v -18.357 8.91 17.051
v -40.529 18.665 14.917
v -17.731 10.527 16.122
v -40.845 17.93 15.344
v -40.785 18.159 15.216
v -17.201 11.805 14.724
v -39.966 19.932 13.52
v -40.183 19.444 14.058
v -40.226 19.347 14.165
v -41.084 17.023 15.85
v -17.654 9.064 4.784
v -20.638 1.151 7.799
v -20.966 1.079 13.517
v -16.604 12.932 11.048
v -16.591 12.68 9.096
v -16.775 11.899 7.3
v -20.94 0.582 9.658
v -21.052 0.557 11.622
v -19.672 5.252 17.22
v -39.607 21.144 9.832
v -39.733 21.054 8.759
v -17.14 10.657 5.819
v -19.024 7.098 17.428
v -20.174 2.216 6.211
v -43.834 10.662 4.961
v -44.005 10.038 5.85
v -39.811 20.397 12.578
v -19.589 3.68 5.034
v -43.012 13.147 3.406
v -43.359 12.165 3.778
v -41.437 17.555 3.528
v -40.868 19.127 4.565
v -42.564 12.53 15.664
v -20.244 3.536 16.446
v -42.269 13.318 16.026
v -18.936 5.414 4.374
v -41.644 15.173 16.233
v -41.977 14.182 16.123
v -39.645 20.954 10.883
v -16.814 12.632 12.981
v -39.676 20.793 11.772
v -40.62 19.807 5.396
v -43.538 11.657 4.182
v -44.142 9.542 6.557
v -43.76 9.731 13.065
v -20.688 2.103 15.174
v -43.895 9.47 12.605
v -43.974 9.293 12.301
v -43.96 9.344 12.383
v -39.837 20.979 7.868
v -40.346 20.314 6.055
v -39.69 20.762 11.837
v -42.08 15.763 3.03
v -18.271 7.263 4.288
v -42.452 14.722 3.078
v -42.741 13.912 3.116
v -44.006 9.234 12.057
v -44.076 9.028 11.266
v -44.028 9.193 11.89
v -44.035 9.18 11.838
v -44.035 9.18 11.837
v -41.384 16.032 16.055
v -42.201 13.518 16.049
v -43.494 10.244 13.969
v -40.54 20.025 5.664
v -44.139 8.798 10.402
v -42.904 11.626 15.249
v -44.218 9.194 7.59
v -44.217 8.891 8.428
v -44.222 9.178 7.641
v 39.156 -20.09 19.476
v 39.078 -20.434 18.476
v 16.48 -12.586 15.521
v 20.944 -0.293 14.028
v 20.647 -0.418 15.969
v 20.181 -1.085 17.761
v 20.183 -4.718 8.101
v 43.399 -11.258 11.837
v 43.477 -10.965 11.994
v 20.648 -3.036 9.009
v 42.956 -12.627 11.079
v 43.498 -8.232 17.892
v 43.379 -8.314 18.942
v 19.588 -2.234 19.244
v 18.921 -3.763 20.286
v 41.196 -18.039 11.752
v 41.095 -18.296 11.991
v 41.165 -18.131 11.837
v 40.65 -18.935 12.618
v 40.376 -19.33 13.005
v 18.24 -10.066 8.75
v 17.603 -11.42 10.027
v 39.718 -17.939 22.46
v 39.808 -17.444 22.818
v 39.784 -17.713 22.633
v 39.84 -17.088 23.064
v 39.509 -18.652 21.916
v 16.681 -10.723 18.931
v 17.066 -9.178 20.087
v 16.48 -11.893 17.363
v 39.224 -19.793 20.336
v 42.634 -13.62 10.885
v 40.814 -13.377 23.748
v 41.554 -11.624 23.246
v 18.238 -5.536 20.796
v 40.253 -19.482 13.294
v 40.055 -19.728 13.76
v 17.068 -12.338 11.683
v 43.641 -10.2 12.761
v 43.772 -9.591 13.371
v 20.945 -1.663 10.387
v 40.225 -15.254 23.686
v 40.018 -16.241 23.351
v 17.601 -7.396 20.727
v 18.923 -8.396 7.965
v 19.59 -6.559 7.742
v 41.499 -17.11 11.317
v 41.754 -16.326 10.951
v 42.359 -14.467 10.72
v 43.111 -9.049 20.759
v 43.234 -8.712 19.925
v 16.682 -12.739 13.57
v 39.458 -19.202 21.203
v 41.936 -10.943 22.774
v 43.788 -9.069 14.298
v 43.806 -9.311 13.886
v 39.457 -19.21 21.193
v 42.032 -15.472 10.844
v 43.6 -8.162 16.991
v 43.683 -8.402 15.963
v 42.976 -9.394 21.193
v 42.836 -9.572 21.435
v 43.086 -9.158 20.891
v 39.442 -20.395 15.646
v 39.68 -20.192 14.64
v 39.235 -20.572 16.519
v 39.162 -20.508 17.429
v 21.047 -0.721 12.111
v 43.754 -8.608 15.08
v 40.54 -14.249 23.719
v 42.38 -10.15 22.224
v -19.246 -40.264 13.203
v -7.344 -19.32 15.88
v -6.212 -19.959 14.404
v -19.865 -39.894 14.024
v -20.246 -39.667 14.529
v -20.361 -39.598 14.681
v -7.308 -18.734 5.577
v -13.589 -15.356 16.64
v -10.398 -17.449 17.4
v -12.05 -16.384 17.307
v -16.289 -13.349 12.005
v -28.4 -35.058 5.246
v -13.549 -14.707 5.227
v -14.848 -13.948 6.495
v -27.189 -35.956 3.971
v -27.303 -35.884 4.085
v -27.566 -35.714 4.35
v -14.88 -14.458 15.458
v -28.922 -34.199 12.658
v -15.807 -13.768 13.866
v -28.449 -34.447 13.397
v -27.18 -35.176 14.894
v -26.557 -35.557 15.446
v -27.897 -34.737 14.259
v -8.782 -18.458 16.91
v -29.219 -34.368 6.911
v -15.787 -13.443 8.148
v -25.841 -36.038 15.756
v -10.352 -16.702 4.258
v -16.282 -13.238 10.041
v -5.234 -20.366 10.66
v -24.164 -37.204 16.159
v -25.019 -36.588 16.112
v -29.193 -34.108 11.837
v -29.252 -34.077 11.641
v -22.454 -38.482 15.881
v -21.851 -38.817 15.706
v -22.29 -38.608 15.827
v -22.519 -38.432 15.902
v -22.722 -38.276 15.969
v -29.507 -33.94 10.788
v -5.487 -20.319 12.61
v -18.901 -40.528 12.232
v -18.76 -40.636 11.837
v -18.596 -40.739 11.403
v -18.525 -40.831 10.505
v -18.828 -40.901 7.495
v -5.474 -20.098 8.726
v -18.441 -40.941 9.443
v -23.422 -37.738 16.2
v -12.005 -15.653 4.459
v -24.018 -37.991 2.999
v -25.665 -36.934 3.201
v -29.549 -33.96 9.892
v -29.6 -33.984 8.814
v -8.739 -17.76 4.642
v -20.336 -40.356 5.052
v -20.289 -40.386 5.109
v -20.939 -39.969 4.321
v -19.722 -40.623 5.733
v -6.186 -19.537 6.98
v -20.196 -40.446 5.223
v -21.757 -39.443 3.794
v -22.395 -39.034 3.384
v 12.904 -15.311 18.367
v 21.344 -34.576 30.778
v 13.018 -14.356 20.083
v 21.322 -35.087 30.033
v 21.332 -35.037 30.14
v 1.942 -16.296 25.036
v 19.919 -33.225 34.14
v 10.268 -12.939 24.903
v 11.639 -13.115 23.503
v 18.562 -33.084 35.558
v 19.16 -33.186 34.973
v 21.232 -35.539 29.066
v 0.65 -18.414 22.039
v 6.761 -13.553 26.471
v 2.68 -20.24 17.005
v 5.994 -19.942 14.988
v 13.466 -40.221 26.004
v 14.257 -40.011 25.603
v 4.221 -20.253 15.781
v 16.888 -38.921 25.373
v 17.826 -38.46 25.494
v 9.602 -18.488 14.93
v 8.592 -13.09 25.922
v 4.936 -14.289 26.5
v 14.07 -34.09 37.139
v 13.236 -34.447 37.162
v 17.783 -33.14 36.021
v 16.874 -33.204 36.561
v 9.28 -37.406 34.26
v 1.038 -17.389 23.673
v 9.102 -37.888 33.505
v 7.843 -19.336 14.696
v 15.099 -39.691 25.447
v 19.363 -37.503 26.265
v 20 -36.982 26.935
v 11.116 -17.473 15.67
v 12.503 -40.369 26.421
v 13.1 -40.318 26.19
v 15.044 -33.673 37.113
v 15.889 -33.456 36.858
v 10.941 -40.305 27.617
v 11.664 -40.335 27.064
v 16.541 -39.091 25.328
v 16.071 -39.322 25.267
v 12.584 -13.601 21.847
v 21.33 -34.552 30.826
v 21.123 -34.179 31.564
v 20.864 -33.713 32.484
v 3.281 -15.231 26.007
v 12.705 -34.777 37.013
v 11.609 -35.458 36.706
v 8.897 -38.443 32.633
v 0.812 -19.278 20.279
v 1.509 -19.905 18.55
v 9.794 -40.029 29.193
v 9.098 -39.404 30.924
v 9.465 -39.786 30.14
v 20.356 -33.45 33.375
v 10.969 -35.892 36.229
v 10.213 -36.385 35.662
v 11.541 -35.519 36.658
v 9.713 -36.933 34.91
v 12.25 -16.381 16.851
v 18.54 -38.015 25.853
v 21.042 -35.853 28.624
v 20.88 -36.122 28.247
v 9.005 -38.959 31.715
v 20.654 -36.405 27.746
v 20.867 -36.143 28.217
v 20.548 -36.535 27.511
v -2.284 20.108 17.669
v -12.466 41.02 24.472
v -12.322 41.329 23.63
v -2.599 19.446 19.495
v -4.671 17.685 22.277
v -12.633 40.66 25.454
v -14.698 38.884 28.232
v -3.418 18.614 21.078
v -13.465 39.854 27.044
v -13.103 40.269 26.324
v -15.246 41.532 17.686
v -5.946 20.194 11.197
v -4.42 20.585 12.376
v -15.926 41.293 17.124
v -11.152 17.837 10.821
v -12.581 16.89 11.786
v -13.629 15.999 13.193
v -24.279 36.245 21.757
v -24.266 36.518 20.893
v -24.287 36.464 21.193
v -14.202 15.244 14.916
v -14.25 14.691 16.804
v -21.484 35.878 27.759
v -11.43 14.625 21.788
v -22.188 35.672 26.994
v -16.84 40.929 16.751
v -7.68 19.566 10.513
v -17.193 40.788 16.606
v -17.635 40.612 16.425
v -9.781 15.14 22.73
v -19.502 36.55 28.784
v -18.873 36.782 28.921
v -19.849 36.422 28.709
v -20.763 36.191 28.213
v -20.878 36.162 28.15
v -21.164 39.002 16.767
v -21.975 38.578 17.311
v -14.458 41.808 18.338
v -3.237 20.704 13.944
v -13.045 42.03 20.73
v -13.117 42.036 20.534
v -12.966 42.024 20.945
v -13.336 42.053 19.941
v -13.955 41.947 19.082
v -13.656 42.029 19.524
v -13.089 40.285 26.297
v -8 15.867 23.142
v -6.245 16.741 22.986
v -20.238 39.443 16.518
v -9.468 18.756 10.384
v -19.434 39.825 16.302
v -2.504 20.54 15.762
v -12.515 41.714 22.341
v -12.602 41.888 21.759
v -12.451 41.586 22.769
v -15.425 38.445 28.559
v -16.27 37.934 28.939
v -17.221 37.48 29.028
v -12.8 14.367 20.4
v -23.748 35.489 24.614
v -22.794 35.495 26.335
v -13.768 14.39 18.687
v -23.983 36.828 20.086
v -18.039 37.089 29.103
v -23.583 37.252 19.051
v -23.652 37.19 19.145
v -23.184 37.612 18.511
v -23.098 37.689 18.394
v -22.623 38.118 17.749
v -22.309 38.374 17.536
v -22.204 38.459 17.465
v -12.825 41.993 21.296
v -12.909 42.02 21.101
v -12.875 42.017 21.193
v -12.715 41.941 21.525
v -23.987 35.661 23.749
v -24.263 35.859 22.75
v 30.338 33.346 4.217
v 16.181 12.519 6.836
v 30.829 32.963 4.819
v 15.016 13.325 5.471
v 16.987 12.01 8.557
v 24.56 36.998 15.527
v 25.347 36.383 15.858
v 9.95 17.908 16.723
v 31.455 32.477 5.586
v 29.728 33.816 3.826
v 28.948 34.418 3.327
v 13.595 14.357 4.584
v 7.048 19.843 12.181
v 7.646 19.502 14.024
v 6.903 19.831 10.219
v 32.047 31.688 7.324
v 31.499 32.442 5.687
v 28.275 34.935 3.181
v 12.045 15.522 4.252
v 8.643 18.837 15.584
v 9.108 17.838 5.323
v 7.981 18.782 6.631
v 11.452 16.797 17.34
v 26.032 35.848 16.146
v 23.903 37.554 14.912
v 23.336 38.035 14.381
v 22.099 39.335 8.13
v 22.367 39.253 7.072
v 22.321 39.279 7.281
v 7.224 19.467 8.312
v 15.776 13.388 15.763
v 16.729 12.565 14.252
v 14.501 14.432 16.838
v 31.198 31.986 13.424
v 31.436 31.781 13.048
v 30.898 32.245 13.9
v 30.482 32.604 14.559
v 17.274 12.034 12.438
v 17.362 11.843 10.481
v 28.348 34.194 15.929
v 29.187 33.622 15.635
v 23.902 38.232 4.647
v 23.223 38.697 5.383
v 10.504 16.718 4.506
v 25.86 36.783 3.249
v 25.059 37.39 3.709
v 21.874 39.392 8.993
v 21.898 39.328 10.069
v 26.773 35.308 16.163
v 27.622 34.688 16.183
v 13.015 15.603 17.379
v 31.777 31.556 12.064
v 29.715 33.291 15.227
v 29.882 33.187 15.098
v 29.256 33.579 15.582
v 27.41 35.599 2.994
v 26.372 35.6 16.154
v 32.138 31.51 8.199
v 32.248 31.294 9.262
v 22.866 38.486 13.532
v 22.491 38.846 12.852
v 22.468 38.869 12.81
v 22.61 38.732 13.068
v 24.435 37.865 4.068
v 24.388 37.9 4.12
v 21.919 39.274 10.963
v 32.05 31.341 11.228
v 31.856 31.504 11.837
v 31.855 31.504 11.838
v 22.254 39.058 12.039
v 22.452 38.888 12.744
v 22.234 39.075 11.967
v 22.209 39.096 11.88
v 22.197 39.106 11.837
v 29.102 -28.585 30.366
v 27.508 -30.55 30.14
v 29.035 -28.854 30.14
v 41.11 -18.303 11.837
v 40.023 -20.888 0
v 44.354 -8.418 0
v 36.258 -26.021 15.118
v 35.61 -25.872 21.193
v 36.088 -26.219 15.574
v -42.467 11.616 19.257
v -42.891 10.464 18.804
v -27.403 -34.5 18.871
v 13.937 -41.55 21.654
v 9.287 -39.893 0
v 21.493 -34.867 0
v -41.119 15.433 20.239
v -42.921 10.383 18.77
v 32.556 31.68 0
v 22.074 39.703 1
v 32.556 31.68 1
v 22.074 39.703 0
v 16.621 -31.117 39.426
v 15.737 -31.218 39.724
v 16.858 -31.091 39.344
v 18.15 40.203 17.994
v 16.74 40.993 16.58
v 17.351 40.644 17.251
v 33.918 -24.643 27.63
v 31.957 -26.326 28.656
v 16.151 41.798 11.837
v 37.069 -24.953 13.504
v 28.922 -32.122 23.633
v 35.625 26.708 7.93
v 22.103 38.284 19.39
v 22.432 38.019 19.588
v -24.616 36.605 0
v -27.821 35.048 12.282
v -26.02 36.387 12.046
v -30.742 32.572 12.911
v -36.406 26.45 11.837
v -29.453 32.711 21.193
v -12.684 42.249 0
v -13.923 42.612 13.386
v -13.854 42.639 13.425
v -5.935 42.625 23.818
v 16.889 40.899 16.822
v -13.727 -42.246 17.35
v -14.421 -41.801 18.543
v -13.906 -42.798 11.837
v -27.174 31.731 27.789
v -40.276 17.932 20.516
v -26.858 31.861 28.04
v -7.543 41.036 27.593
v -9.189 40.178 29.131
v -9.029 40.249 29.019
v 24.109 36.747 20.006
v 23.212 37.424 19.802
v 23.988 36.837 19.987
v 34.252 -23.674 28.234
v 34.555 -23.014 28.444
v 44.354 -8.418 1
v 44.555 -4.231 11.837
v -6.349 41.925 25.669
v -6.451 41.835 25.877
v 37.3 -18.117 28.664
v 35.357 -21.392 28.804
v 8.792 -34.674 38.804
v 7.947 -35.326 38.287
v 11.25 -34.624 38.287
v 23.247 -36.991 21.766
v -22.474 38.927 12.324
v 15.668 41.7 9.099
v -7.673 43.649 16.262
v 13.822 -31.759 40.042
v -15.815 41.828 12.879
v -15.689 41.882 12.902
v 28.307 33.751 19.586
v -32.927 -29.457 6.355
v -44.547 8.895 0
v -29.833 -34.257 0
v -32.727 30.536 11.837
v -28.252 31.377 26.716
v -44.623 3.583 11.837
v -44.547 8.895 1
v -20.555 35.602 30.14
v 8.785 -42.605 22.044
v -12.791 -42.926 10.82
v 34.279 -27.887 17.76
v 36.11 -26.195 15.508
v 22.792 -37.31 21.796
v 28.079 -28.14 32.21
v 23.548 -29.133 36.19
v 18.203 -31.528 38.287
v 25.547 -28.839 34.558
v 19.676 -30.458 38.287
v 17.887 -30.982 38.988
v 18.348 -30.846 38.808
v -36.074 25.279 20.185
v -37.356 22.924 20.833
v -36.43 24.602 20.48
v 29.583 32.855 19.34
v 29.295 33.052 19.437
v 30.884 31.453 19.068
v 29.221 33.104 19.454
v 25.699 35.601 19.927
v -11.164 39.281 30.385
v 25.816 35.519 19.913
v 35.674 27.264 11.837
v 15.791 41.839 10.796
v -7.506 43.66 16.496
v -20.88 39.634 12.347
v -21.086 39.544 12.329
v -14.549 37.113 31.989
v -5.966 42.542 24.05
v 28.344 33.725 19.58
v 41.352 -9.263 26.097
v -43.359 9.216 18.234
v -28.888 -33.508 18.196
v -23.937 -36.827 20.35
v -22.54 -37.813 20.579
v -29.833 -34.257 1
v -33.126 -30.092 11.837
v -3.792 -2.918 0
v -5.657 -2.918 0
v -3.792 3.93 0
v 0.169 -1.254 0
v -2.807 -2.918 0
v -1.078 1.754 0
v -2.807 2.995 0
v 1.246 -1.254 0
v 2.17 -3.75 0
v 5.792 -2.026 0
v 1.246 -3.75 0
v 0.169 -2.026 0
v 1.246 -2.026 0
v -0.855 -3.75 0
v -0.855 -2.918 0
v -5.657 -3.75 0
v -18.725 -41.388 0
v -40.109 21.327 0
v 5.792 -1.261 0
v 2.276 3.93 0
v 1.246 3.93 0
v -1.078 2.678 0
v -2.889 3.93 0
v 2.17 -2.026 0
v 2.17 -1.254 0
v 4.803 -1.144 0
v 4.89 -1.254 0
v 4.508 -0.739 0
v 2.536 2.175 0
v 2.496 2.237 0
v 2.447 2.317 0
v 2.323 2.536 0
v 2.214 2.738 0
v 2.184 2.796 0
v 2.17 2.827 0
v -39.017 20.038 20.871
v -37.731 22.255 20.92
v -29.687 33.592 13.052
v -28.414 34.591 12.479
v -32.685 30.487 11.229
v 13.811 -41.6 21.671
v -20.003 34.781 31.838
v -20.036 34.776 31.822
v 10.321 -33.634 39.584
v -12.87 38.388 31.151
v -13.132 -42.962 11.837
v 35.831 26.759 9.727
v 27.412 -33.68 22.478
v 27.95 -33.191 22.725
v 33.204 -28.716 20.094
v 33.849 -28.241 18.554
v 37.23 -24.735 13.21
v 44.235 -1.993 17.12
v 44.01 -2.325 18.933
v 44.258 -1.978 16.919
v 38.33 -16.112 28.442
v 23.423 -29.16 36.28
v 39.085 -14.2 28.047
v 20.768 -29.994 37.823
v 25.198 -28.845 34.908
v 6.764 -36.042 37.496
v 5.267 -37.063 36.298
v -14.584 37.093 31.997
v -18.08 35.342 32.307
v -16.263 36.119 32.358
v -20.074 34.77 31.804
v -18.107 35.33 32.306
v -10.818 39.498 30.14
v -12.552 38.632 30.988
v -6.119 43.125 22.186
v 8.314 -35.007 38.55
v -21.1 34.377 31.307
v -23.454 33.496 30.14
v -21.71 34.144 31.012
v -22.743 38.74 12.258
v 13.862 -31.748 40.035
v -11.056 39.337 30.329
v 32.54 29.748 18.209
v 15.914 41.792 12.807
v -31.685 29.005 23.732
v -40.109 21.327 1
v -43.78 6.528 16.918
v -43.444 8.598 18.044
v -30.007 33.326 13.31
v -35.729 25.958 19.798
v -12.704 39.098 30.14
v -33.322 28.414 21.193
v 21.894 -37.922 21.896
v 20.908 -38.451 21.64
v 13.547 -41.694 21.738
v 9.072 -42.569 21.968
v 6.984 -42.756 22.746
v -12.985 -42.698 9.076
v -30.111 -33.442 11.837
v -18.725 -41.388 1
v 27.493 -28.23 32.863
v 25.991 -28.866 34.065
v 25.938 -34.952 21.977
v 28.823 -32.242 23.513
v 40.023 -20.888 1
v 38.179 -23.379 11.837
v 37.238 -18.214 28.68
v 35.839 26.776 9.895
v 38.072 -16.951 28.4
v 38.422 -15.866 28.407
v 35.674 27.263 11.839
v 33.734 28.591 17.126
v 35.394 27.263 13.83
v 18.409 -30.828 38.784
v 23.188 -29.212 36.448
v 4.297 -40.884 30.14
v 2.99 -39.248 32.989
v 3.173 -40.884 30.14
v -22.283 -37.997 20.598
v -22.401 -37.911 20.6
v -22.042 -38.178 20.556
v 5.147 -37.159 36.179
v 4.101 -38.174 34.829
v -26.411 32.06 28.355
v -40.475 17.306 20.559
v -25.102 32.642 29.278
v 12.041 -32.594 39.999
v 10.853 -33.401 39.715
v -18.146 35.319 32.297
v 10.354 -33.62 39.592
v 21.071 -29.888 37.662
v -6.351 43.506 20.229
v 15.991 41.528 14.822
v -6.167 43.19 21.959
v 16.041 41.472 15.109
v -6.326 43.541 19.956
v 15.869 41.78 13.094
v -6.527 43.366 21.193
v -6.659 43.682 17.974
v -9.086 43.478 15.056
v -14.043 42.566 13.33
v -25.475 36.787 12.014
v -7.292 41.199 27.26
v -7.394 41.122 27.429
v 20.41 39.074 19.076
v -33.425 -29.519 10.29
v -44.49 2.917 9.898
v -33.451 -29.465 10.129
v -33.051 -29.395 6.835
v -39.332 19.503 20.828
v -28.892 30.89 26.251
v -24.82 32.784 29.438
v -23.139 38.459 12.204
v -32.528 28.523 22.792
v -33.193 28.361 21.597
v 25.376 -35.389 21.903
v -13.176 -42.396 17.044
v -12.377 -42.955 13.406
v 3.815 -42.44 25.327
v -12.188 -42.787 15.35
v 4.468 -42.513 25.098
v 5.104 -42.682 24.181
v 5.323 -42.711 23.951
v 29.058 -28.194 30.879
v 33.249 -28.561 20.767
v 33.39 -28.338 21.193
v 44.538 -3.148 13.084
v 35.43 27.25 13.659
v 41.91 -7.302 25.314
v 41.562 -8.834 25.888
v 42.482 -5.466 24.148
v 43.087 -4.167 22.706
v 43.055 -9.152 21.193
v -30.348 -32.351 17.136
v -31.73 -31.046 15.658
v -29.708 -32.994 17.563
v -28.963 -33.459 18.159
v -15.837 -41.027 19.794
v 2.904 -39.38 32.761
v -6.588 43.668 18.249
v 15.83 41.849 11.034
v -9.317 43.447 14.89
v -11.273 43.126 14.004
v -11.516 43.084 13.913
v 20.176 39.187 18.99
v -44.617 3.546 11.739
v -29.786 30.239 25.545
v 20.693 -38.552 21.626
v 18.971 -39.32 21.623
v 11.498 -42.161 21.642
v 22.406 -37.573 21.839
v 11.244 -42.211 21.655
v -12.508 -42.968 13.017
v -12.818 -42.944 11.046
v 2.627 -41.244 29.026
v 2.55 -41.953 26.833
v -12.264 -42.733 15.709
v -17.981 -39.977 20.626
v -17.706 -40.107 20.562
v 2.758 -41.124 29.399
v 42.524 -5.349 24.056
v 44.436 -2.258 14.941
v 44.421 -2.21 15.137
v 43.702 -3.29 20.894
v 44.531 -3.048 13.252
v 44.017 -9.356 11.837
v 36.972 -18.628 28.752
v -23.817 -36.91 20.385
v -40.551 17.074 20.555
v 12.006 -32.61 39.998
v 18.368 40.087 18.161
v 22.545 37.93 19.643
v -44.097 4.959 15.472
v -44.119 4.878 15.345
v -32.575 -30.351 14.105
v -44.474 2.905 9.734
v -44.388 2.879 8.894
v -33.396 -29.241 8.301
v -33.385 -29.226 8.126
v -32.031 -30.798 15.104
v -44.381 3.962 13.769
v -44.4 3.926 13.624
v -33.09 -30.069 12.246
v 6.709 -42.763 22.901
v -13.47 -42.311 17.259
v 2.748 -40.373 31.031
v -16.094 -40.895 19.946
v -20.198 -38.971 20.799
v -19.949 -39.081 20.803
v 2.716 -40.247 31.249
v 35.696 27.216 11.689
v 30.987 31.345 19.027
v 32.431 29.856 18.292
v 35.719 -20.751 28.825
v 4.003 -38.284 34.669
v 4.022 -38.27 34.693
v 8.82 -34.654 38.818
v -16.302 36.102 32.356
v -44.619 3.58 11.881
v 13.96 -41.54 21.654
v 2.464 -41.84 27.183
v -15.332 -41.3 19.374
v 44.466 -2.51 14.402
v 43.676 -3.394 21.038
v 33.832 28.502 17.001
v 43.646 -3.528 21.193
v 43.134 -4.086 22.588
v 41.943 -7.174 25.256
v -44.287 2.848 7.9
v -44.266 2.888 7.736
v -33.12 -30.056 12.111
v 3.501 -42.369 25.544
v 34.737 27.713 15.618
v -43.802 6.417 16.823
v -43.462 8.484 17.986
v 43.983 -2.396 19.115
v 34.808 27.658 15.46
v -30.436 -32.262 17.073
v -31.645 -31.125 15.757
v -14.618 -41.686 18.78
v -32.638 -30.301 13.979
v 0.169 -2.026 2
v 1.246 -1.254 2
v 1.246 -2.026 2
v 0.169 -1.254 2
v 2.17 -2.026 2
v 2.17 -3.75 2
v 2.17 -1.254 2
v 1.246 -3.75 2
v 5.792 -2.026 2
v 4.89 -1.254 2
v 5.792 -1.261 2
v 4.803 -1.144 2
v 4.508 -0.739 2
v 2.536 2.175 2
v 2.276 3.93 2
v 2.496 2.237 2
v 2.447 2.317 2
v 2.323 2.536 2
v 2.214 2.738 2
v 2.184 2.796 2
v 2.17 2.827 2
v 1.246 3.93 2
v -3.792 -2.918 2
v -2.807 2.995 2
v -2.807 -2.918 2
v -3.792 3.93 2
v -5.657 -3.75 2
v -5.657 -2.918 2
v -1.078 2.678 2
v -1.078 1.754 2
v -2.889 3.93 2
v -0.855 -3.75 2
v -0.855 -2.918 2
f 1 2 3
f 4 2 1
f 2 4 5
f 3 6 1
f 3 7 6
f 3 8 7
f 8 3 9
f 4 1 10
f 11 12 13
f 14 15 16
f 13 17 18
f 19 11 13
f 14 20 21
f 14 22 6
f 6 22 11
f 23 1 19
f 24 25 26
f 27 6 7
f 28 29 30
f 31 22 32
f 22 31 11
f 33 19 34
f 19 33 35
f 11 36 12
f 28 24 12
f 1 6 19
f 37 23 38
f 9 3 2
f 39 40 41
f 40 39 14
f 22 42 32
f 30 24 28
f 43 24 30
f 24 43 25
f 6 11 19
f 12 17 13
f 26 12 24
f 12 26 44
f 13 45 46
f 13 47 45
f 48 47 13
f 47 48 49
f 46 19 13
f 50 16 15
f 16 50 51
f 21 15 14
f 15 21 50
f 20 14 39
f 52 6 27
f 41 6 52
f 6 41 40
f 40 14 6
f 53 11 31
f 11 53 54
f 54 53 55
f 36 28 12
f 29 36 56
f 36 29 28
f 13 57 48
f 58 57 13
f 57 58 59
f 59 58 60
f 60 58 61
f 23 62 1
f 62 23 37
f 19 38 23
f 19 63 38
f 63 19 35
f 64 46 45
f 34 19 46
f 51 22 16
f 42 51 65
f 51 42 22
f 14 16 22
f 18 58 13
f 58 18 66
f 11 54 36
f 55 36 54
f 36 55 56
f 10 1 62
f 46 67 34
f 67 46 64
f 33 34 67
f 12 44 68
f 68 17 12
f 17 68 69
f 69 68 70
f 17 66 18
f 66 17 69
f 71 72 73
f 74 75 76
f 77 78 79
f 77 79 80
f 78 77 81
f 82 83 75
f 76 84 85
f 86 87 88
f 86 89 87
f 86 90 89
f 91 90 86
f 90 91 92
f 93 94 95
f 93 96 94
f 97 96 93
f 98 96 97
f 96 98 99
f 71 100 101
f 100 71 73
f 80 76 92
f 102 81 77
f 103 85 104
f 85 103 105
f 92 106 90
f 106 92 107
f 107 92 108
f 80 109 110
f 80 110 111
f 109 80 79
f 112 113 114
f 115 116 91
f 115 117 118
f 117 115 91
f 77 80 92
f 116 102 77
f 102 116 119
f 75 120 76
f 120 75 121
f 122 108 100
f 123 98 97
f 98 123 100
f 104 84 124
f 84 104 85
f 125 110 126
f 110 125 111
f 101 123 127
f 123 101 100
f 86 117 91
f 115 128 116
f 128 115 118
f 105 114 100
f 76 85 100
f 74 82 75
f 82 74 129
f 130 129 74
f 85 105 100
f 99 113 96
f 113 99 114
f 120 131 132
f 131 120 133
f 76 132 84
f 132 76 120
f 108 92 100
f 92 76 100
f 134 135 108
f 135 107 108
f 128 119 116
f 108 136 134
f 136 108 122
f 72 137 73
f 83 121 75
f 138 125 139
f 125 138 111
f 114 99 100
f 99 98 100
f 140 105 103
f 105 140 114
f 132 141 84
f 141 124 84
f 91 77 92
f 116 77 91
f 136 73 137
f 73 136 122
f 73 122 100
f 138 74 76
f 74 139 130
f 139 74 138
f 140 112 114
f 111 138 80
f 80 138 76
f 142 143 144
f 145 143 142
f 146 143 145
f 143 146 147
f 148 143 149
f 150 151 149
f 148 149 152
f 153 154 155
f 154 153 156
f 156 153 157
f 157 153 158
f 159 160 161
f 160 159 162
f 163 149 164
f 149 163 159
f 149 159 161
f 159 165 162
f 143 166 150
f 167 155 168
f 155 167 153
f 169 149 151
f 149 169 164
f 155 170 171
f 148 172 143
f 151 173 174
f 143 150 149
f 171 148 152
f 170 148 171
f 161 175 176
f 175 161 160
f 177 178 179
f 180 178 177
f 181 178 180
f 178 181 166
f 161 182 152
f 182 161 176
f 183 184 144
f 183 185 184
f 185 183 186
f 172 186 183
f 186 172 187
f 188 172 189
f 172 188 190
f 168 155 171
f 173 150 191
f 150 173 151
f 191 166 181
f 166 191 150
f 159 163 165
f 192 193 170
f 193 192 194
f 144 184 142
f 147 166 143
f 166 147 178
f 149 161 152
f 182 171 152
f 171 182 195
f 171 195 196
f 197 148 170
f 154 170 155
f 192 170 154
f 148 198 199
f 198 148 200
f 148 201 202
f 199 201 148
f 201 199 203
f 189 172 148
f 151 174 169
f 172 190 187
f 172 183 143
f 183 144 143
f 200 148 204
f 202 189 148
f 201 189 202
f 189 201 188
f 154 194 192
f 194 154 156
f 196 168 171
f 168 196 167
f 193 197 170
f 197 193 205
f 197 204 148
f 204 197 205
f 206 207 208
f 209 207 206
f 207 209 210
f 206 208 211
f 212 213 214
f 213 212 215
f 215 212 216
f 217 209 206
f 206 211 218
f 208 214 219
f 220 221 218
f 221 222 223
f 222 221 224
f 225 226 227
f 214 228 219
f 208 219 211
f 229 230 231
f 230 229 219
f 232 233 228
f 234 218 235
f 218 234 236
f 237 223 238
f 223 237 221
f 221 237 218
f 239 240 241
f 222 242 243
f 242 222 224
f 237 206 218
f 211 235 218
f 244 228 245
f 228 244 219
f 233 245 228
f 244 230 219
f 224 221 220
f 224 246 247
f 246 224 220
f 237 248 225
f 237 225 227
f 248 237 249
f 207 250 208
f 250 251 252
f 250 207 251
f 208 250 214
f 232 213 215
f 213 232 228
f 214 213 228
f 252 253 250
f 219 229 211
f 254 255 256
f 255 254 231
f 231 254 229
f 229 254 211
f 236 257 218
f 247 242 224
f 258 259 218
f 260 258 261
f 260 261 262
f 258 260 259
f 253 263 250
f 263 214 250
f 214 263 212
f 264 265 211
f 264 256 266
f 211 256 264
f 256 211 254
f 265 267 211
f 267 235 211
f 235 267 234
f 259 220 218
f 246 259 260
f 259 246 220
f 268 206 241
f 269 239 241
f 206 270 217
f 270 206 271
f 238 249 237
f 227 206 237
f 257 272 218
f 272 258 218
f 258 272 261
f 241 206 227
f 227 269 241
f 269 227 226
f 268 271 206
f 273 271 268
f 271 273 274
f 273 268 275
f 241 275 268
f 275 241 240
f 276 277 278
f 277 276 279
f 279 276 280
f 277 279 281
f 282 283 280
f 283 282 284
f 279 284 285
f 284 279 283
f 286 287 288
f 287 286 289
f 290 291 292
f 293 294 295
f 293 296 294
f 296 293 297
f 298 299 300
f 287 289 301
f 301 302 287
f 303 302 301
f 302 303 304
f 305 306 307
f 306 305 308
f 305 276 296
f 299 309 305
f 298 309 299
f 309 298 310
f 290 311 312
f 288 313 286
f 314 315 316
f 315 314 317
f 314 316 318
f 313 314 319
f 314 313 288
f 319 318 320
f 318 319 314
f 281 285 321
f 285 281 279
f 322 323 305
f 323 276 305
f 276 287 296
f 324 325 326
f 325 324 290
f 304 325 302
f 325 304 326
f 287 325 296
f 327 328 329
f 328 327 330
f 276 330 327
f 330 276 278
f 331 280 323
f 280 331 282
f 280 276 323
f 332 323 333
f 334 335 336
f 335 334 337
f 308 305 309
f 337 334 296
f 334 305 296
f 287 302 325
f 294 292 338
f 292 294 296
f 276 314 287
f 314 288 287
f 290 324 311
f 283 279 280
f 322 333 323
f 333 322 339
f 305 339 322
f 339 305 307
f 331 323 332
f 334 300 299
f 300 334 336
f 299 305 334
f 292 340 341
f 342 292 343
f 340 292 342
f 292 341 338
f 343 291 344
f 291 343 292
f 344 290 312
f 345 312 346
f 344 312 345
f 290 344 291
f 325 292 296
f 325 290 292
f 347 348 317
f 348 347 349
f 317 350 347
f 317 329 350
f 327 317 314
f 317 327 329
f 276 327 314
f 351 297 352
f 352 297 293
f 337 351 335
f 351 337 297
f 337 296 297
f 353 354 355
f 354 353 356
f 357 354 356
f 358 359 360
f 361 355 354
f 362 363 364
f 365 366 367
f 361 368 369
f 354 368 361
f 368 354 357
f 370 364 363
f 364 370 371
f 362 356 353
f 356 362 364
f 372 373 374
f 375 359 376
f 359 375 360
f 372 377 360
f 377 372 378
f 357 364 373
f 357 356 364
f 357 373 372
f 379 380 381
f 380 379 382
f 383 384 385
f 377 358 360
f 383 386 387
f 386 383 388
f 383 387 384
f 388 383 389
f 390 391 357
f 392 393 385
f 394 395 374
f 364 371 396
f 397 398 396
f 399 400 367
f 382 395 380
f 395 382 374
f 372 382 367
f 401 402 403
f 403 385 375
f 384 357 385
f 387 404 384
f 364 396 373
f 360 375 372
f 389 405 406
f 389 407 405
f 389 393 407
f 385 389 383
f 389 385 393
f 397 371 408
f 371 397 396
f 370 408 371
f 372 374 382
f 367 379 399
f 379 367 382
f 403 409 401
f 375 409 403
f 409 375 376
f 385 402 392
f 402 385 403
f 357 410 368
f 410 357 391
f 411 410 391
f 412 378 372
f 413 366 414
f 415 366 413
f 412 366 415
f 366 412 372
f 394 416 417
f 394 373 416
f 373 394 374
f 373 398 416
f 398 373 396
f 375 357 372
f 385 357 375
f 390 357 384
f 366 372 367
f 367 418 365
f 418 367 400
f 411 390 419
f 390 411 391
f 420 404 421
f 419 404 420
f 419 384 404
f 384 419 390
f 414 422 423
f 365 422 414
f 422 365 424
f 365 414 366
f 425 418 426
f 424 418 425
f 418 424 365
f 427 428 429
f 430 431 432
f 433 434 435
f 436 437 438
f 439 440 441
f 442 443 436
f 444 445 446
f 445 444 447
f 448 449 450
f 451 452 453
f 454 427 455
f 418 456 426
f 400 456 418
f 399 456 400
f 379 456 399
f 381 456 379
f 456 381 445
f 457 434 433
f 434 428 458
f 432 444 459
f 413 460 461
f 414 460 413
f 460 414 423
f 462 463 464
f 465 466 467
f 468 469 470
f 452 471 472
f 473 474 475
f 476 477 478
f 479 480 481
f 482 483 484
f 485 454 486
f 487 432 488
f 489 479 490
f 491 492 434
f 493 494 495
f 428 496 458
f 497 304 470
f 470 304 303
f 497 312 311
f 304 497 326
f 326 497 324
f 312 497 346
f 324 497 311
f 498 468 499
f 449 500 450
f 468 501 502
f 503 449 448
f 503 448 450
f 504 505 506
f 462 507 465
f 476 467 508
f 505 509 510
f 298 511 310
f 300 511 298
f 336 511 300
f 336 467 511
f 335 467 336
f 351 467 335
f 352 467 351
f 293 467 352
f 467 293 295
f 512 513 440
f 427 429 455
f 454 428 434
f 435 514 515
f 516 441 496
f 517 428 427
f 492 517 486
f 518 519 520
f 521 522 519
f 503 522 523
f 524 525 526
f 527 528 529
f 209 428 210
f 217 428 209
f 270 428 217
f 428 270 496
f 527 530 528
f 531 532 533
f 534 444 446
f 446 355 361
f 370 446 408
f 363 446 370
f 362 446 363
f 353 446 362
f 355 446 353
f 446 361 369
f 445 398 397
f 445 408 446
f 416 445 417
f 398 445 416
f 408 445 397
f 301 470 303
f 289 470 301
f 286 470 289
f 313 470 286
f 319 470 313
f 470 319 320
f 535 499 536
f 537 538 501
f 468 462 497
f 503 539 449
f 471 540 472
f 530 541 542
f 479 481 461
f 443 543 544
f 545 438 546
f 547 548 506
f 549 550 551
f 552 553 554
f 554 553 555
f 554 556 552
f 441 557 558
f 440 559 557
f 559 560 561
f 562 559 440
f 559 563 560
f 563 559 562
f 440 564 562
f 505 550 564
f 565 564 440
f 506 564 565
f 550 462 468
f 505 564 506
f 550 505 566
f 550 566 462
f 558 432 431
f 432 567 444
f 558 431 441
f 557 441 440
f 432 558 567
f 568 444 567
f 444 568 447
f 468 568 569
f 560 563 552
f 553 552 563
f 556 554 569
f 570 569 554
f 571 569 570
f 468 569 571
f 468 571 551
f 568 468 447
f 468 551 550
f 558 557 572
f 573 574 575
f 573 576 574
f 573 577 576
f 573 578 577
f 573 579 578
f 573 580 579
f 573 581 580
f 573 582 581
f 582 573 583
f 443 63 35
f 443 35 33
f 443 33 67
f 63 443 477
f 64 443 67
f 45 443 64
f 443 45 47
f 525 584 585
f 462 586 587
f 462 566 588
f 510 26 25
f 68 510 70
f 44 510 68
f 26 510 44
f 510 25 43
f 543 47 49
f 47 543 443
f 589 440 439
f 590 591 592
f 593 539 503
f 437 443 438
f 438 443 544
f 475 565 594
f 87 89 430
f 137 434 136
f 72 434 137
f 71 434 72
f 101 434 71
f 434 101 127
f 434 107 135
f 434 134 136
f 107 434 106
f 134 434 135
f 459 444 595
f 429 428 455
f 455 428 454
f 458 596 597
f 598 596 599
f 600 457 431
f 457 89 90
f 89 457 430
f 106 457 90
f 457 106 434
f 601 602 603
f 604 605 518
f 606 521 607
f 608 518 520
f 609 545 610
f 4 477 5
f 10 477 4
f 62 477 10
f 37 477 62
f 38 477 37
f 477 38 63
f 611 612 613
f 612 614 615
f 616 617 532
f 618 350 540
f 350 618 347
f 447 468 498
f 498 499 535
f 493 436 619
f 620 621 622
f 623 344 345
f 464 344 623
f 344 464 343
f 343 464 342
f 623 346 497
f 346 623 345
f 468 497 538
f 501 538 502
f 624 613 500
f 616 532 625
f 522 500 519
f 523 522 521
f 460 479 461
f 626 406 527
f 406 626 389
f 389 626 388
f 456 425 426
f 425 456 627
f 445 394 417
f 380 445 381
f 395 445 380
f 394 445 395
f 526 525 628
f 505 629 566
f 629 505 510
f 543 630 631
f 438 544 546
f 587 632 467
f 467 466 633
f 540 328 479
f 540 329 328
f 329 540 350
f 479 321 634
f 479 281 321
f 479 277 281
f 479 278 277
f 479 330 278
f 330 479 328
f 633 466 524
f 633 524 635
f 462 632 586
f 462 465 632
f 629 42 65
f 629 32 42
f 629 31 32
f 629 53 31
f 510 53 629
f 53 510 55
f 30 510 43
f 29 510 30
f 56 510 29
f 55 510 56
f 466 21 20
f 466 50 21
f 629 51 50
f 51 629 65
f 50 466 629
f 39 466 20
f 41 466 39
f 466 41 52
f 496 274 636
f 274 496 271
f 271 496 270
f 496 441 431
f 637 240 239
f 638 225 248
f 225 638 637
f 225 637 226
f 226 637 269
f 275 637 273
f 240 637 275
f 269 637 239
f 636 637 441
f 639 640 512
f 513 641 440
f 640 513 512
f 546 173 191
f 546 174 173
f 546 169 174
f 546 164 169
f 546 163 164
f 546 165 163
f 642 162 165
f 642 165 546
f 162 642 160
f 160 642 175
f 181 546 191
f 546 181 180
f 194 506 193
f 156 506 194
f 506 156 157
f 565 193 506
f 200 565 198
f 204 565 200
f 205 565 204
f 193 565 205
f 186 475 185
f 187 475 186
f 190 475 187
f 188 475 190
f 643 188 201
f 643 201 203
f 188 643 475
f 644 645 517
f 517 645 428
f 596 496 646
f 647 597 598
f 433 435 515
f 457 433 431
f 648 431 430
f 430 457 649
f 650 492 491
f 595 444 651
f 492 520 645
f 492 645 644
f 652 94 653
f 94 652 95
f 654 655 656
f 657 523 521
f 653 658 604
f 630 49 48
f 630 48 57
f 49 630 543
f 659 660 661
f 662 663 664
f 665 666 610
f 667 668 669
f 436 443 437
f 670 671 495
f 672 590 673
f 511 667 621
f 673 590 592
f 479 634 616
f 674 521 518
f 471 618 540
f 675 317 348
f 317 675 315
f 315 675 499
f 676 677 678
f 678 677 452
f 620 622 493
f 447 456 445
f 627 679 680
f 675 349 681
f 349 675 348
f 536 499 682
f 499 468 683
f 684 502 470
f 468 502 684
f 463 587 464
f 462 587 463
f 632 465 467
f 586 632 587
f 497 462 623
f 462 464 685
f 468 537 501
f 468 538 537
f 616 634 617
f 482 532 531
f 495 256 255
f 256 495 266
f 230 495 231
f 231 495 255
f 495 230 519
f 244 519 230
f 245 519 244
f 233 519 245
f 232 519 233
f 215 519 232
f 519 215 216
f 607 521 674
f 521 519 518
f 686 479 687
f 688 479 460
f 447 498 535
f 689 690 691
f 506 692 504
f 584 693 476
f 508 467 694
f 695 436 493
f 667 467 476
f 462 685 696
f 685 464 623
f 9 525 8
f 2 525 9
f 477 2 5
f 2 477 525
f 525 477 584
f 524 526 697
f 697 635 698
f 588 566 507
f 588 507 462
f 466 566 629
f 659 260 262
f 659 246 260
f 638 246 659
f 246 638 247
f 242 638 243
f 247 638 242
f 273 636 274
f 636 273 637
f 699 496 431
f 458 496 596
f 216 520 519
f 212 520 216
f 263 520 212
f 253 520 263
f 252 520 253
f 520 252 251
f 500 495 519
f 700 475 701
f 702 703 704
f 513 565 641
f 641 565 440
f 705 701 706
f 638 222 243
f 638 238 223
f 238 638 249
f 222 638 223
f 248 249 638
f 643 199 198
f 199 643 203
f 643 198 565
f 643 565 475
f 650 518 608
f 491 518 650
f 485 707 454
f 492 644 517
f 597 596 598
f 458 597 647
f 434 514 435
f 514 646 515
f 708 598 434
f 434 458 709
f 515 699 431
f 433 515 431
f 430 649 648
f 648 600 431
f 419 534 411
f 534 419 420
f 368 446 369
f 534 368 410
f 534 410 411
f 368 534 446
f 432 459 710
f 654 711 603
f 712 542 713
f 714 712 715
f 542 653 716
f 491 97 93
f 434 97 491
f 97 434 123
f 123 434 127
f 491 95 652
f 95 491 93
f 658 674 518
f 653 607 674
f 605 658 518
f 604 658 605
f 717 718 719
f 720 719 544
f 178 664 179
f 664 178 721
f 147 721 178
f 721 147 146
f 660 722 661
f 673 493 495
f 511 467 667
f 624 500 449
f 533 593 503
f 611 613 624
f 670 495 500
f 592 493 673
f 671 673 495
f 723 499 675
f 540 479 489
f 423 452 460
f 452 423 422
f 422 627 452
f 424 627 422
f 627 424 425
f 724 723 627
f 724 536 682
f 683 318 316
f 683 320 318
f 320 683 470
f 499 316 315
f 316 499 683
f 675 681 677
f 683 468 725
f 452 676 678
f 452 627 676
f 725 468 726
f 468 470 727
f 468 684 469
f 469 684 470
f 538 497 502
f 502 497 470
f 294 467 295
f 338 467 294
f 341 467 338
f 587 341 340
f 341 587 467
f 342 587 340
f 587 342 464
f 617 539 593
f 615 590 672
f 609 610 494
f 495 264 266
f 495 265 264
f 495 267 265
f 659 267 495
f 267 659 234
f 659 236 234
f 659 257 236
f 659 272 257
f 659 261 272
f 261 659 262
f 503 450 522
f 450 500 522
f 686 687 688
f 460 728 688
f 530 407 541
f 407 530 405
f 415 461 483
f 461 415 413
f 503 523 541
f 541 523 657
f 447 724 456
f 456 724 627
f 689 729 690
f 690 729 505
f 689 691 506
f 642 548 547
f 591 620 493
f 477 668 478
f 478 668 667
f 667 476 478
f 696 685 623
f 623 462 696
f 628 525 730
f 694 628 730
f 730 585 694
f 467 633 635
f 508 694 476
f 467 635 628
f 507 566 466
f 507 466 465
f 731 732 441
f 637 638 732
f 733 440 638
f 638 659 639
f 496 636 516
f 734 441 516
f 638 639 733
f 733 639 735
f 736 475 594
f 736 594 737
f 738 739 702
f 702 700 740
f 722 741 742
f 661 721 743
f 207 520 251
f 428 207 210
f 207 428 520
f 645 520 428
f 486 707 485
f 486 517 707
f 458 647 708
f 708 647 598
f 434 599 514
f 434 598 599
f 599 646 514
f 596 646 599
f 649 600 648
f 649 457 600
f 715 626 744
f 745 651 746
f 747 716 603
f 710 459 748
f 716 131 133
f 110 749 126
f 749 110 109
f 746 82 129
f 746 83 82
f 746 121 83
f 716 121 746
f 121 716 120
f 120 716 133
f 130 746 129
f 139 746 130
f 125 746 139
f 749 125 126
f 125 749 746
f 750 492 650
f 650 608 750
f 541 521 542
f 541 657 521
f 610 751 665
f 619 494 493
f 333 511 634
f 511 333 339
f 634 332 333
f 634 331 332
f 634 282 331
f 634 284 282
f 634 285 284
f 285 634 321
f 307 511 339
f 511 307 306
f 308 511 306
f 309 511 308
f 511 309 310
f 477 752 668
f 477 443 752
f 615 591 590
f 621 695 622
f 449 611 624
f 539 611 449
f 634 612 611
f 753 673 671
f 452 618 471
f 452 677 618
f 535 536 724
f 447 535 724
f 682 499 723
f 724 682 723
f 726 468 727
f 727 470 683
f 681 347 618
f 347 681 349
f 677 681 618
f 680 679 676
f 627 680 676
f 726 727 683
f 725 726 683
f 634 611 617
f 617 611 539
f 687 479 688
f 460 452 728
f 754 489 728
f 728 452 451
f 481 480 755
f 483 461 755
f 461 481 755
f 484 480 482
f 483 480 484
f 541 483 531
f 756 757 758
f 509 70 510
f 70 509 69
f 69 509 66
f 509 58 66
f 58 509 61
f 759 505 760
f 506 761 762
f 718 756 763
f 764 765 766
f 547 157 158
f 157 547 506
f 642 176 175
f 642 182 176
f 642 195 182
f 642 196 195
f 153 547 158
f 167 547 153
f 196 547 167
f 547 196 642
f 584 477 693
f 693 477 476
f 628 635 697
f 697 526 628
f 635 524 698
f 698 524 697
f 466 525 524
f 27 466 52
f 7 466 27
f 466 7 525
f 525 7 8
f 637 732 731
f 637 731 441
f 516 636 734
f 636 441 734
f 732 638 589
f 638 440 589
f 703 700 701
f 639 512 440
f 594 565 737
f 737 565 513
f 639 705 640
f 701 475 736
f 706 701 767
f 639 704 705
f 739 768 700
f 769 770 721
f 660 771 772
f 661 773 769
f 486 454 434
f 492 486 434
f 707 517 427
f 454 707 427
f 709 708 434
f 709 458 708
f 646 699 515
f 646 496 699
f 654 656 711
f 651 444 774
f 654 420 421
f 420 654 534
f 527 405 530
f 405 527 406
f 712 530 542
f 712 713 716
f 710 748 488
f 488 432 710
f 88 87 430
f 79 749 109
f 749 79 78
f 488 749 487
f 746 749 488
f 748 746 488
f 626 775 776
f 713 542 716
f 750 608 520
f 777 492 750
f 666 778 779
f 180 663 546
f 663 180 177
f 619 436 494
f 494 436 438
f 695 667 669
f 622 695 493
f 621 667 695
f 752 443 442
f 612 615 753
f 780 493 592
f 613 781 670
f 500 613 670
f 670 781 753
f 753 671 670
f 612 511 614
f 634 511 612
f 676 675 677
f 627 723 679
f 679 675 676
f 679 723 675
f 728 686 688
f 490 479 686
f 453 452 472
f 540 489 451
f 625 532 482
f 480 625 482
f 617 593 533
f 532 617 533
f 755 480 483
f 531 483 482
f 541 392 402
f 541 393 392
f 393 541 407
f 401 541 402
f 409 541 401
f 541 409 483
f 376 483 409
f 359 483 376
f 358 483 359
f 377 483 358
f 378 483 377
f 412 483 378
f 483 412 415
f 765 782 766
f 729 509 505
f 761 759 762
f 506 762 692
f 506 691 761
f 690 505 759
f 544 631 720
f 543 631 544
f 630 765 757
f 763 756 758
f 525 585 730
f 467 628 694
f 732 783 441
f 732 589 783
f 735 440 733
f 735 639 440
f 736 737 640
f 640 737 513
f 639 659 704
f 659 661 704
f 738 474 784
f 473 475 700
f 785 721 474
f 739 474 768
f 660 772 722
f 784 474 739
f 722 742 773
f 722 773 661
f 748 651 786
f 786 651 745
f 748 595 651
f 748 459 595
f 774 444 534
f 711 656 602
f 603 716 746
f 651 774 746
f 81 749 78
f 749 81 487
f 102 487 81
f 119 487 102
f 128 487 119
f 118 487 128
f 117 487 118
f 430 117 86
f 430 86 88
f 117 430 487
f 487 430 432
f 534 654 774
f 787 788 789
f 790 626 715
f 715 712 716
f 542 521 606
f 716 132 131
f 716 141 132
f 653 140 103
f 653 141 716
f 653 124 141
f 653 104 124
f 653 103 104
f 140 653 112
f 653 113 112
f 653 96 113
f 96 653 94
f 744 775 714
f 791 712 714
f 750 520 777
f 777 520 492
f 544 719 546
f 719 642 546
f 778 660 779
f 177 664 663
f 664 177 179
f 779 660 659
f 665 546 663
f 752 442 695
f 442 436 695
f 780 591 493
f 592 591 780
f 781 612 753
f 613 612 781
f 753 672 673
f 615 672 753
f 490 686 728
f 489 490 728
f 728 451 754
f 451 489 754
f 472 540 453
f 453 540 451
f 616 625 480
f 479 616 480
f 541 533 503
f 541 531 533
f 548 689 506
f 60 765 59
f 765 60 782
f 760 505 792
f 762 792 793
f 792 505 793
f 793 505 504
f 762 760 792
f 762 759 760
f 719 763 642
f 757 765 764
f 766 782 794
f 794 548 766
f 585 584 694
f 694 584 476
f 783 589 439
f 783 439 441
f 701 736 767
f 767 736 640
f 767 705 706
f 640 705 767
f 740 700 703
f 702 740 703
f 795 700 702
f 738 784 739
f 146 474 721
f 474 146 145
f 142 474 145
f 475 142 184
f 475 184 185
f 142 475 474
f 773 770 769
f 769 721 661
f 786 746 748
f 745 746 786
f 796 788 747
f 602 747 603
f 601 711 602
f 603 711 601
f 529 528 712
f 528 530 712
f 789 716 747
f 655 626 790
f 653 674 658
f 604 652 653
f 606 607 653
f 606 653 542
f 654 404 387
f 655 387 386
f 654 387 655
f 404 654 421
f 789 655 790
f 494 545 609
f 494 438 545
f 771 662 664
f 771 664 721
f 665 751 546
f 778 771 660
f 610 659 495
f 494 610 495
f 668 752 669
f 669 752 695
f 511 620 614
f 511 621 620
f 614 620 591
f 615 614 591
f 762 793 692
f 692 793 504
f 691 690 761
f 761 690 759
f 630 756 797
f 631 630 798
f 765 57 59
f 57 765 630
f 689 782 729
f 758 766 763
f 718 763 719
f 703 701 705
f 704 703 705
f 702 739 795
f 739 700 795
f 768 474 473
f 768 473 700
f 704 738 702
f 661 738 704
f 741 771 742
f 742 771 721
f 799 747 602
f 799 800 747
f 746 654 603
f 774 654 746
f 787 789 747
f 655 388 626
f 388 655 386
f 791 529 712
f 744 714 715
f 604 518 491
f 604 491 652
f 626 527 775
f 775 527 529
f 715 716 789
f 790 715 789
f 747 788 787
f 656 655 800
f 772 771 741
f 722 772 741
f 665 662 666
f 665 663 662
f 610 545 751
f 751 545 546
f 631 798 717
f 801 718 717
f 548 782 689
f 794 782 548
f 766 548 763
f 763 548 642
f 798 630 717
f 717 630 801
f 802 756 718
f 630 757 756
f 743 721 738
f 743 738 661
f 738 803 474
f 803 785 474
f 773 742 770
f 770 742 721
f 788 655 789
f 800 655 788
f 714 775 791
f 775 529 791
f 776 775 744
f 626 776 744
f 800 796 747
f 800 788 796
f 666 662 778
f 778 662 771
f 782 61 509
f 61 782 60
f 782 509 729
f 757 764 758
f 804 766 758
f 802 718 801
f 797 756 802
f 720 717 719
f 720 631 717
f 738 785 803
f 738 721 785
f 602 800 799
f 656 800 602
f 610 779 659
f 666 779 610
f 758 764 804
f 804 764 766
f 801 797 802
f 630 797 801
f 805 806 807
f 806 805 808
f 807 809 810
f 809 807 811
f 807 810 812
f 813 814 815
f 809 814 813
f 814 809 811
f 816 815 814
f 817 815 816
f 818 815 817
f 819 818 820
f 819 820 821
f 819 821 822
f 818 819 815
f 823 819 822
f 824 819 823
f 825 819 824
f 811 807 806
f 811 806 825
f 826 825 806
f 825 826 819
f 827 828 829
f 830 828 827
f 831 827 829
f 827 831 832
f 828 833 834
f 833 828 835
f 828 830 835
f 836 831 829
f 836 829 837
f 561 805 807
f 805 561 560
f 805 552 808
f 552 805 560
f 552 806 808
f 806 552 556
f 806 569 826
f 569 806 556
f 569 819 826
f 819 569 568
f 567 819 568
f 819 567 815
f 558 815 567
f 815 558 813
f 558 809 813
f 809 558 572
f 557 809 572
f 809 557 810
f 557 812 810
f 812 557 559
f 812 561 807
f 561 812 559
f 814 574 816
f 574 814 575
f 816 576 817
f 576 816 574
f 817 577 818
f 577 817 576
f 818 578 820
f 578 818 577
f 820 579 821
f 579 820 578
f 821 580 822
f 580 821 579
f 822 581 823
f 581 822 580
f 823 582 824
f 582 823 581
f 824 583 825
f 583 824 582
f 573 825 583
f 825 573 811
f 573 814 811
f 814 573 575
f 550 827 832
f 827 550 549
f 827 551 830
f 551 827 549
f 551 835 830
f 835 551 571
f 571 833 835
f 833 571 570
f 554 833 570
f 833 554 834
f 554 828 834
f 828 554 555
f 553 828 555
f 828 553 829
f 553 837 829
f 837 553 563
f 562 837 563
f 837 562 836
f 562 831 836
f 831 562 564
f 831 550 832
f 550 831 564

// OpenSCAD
difference() {
	difference() {
		difference() {
			hull() {
				union() {
					union() {
						rotate(a = 160.3537357487, v = [0, 0, 1]) {
							translate(v = [0, -6.6000000000, 0]) {
								cube(size = [44.9443770354, 13.2000000000, 1]);
							}
						}
						rotate(a = -19.1532576718, v = [0, 0, 1]) {
							translate(v = [0, -6.6000000000, 0]) {
								cube(size = [44.6605983156, 13.2000000000, 1]);
							}
						}
						rotate(a = -122.6973300936, v = [0, 0, 1]) {
							translate(v = [0, -6.6000000000, 0]) {
								cube(size = [44.9443768618, 13.2000000000, 1]);
							}
						}
						rotate(a = -67.6218109896, v = [0, 0, 1]) {
							translate(v = [0, -6.6000000000, 0]) {
								cube(size = [40.4241181318, 13.2000000000, 1]);
							}
						}
						rotate(a = 115.3150595768, v = [0, 0, 1]) {
							translate(v = [0, -6.6000000000, 0]) {
								cube(size = [43.6156854004, 13.2000000000, 1]);
							}
						}
						rotate(a = 52.5727036315, v = [0, 0, 1]) {
							translate(v = [0, -6.6000000000, 0]) {
								cube(size = [44.9443774844, 13.2000000000, 1]);
							}
						}
					}
					translate(v = [0, 0, 11.8367361280]) {
						intersection() {
							hull() {
								rotate(a = 92.8491051209, v = [-0.3357966067, -0.9406221212, 0.0000012764]) {
									cylinder(h = 45, r = 9.6000000000);
								}
								rotate(a = 82.9585209668, v = [0.3256216446, 0.9375194723, -0.0000012631]) {
									cylinder(h = 45, r = 9.6000000000);
								}
								rotate(a = 92.8491540388, v = [0.8404957087, -0.5395333307, -0.0000003010]) {
									cylinder(h = 45, r = 9.6000000000);
								}
								rotate(a = 63.9373242533, v = [0.8306630934, 0.3420041277, -0.0000011727]) {
									cylinder(h = 45, r = 9.6000000000);
								}
								rotate(a = 75.7514959121, v = [-0.8761615207, -0.4144417973, 0.0000012906]) {
									cylinder(h = 45, r = 9.6000000000);
								}
								rotate(a = 92.8489786004, v = [-0.7931436362, 0.6070030705, 0.0000001861]) {
									cylinder(h = 45, r = 9.6000000000);
								}
							}
							sphere(r = 45);
						}
					}
				}
			}
			translate(v = [0, 0, 11.8367361280]) {
				rotate(a = 92.8491051209, v = [-0.3357966067, -0.9406221212, 0.0000012764]) {
					translate(v = [0, 0, 20]) {
						cylinder(h = 45, r = 6.6000000000);
					}
				}
				rotate(a = 82.9585209668, v = [0.3256216446, 0.9375194723, -0.0000012631]) {
					translate(v = [0, 0, 20]) {
						cylinder(h = 45, r = 6.6000000000);
					}
				}
				rotate(a = 92.8491540388, v = [0.8404957087, -0.5395333307, -0.0000003010]) {
					translate(v = [0, 0, 20]) {
						cylinder(h = 45, r = 6.6000000000);
					}
				}
				rotate(a = 63.9373242533, v = [0.8306630934, 0.3420041277, -0.0000011727]) {
					translate(v = [0, 0, 20]) {
						cylinder(h = 45, r = 6.6000000000);
					}
				}
				rotate(a = 75.7514959121, v = [-0.8761615207, -0.4144417973, 0.0000012906]) {
					translate(v = [0, 0, 20]) {
						cylinder(h = 45, r = 6.6000000000);
					}
				}
				rotate(a = 92.8489786004, v = [-0.7931436362, 0.6070030705, 0.0000001861]) {
					translate(v = [0, 0, 20]) {
						cylinder(h = 45, r = 6.6000000000);
					}
				}
			}
		}
		translate(v = [-100, -100, -100]) {
			cube(size = [200, 200, 100]);
		}
	}
	translate(v = [0, 0, 2]) {
		rotate(a = 180, v = [0, 1, 0]) {
			linear_extrude(height = 3) {
				text(halign = "center", size = 8, text = "41", valign = "center");
			}
		}
	}
}
